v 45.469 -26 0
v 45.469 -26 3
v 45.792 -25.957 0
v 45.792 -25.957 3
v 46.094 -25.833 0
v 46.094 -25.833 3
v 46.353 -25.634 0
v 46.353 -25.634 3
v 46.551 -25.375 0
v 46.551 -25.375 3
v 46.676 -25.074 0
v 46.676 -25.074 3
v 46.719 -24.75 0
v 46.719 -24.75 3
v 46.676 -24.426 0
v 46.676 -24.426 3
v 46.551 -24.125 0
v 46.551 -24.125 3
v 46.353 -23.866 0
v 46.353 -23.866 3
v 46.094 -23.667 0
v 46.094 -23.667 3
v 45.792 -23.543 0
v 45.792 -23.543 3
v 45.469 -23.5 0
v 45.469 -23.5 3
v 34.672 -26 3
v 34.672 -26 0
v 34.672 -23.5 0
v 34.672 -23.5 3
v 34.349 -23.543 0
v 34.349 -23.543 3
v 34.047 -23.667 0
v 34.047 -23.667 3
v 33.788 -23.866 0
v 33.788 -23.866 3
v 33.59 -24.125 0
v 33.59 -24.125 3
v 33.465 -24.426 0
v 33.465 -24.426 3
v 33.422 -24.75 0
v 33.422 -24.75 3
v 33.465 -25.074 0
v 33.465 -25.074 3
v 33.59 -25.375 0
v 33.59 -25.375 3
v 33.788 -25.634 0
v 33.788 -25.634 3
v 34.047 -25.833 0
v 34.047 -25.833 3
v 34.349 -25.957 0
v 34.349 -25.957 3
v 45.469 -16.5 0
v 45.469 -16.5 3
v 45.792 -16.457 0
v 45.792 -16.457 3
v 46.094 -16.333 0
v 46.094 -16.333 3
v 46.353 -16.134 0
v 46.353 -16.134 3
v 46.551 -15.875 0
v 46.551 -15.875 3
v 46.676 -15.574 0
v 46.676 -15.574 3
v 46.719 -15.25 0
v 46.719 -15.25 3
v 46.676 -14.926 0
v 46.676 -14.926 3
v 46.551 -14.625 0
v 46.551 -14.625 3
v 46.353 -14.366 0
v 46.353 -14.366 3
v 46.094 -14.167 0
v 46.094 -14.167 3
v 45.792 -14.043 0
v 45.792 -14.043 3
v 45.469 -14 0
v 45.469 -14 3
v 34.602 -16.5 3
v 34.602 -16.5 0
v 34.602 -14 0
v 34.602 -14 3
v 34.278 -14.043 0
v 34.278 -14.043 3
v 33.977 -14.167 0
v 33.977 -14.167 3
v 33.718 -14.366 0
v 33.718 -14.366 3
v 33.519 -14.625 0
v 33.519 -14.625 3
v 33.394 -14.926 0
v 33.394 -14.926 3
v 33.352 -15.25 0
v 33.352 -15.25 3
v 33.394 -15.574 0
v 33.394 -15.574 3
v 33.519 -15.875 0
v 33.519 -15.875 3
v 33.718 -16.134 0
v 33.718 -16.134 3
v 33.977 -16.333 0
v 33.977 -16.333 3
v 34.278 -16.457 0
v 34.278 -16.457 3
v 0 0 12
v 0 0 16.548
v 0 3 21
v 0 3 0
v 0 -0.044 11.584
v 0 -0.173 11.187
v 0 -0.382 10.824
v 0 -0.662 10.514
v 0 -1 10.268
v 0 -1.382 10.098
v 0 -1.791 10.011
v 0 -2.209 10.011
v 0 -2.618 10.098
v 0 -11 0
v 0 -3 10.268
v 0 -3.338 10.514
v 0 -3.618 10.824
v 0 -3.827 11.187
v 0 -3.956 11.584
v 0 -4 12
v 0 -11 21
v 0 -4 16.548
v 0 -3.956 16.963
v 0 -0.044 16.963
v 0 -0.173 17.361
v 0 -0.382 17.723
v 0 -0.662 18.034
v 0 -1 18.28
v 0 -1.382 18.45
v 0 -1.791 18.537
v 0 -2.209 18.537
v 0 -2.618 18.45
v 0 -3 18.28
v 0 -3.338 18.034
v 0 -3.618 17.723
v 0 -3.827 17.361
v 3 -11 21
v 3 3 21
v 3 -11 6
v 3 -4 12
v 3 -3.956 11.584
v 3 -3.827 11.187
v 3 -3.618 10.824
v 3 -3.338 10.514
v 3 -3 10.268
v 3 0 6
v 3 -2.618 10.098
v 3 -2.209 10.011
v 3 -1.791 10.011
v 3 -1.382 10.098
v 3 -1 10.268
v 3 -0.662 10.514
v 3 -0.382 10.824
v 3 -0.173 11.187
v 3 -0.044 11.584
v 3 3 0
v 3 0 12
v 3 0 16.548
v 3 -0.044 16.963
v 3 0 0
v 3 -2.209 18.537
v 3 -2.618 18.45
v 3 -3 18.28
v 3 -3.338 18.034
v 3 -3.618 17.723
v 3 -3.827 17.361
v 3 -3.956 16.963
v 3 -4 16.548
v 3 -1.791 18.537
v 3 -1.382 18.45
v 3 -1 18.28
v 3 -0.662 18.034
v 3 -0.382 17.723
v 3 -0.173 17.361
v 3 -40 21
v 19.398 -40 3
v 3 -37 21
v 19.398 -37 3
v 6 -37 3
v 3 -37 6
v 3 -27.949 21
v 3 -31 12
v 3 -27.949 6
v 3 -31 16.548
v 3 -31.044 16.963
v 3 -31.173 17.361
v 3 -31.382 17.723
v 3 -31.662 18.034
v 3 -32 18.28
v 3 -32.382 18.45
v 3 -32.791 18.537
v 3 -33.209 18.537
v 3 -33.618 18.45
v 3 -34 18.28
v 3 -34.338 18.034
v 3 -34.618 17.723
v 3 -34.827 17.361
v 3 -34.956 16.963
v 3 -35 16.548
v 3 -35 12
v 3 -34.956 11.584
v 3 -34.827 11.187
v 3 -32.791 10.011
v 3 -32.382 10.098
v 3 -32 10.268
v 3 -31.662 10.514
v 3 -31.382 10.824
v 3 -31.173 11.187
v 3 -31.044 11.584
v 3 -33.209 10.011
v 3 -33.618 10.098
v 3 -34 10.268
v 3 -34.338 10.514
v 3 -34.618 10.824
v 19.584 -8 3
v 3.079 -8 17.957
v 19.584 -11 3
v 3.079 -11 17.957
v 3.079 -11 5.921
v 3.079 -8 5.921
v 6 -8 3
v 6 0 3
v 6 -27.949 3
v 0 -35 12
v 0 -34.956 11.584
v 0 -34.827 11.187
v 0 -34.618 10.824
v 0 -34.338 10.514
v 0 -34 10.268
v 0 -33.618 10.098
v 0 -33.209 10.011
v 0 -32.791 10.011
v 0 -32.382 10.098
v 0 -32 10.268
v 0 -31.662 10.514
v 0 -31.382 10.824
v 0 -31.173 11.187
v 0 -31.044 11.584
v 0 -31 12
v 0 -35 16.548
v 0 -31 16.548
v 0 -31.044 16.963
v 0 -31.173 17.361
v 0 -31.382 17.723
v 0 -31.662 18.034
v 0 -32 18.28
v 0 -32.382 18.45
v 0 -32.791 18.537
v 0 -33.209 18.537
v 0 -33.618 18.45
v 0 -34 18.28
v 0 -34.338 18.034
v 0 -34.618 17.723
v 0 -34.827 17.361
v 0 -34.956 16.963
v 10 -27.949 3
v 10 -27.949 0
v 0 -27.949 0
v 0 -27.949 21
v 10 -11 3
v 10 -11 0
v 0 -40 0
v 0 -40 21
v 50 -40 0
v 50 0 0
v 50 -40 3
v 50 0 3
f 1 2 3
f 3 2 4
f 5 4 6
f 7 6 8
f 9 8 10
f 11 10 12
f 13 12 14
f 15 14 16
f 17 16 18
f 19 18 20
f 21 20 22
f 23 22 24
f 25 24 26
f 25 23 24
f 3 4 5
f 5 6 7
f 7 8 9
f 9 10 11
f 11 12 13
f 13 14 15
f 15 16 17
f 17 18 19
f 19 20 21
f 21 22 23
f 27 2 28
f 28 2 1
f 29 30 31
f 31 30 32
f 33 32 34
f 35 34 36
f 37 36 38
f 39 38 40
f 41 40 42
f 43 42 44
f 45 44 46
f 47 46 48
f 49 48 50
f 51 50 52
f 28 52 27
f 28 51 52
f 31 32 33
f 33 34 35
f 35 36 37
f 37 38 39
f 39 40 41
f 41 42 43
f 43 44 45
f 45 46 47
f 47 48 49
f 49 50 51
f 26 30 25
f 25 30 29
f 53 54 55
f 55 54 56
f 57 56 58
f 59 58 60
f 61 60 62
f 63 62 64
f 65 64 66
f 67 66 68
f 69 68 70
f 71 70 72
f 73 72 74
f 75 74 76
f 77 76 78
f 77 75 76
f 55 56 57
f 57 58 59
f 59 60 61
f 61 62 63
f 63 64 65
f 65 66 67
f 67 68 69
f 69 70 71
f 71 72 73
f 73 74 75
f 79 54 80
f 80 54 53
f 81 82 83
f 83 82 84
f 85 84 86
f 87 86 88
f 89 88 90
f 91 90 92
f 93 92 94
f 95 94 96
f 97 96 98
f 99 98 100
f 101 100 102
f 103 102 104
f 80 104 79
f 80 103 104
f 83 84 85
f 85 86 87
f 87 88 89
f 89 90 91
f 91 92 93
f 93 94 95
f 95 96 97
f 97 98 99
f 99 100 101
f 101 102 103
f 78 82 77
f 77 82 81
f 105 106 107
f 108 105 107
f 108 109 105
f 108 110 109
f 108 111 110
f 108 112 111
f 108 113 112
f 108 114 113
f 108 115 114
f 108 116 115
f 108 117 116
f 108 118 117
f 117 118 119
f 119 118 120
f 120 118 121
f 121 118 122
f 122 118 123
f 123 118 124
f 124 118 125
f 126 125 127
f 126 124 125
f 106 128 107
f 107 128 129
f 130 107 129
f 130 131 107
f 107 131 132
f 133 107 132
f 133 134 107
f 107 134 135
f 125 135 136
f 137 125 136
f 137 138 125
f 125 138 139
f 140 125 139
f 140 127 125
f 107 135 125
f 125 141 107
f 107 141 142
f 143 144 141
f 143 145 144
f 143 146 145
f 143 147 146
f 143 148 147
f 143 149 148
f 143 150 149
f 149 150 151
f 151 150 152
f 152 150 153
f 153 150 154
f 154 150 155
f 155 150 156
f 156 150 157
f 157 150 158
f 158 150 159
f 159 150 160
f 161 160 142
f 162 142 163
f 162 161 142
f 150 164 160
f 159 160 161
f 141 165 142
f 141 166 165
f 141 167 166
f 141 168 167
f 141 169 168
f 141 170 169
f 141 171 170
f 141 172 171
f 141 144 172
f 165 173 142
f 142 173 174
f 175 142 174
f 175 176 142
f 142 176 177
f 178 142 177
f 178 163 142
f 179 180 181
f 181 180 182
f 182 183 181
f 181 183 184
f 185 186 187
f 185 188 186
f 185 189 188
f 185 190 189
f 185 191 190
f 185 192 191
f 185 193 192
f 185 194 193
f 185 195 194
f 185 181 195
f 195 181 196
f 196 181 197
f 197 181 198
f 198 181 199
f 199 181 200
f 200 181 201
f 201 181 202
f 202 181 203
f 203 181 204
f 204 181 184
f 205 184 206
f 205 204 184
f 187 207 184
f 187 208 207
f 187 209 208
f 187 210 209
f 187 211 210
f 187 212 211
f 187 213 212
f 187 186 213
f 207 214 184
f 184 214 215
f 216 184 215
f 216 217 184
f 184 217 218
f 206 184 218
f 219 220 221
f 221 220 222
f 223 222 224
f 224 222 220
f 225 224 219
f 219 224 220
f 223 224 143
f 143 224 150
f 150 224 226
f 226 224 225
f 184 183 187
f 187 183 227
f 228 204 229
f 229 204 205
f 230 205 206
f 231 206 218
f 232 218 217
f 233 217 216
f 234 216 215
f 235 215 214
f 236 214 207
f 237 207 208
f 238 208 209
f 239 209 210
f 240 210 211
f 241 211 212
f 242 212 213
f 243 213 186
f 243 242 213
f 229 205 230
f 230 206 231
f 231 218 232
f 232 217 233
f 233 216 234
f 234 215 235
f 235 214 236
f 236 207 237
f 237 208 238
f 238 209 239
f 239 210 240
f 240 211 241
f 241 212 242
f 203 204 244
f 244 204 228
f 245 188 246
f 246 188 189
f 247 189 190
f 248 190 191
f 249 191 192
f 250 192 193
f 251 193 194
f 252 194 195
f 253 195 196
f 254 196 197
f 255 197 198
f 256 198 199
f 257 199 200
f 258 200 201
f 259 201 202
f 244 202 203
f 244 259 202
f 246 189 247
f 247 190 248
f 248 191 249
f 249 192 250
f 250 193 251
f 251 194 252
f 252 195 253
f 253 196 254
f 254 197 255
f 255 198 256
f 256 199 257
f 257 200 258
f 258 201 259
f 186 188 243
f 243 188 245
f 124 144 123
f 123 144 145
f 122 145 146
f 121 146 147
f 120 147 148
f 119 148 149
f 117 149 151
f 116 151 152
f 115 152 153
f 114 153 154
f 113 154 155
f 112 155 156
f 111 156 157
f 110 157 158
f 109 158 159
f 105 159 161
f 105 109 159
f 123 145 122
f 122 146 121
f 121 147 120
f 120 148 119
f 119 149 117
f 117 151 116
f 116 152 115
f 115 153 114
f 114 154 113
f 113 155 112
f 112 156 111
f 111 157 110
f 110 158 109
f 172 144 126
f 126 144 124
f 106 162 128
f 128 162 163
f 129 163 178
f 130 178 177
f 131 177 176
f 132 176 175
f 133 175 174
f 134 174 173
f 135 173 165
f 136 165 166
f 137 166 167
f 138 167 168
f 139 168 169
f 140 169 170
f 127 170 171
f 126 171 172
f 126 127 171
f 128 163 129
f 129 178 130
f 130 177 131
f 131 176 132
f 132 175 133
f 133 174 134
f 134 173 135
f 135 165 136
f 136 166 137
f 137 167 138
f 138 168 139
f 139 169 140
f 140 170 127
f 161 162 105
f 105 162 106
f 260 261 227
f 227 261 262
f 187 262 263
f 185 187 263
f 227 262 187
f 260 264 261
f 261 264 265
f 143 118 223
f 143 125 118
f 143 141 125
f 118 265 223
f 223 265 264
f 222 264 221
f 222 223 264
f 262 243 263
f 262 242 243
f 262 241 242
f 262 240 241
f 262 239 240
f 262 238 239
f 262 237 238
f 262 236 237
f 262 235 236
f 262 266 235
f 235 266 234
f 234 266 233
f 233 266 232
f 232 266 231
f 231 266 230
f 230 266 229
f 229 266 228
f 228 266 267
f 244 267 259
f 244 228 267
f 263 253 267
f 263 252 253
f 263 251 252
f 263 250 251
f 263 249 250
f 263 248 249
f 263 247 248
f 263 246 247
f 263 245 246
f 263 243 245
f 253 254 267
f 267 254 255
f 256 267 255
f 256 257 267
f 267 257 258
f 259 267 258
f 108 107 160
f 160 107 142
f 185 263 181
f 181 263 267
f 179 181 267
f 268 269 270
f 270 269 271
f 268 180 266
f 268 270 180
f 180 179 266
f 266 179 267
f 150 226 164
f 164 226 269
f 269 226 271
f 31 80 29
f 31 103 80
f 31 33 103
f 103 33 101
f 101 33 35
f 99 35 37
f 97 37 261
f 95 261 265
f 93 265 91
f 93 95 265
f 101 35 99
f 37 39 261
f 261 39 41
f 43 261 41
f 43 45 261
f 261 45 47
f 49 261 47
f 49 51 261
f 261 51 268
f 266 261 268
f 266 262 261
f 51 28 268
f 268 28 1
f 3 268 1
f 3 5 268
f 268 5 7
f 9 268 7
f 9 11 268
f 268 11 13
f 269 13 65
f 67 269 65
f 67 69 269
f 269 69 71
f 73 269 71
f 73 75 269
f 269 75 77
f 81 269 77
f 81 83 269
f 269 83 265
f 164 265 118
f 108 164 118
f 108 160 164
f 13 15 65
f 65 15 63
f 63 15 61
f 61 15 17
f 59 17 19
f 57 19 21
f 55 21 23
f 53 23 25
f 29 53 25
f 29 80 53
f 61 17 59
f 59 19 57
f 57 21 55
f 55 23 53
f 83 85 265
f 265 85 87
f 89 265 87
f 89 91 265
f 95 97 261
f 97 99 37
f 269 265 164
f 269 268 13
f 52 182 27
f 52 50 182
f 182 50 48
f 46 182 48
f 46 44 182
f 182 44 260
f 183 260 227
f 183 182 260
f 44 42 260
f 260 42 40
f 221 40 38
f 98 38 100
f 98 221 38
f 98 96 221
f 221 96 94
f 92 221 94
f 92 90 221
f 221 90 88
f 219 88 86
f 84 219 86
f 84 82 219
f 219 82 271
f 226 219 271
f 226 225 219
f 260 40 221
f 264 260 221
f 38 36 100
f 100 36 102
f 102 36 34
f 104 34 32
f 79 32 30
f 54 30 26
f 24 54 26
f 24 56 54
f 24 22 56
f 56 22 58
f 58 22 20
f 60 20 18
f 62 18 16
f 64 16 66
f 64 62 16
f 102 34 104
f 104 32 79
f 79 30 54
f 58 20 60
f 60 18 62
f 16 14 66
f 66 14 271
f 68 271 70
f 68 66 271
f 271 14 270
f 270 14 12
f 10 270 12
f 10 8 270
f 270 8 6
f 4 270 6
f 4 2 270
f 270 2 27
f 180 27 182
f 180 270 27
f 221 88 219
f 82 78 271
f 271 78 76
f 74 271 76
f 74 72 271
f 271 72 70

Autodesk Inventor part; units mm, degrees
ref_plane "YZ Plane" through (0, 0, 0) normal (1, 0, 0) x (0, 1, 0)
ref_plane "XZ Plane" through (0, 0, 0) normal (0, 1, 0) x (-1, 0, 0)
ref_plane "XY Plane" through (0, 0, 0) normal (0, 0, 1) x (1, 0, 0)
sketch "Sketch1" plane through (0, 0, 0) normal (0, 0, 1) x (1, 0, 0)
  line L0 (0, 0) -> (50, 0)
  line L1 (50, 0) -> (50, -40)
  line L2 (50, -40) -> (0, -40)
  line L3 (0, -40) -> (0, 0)
  dimension "d0" = 50
  dimension "d1" = 40
extrude "Extrusion1" add sketch "Sketch1" along normal blind 3
sketch "Sketch2" plane through (0, 0, 3) normal (0, 0, 1) x (1, 0, 0)
  line L0 (0, -40) -> (50, -40) projected
  line L1 (0, 0) -> (3, 0)
  line L2 (3, 0) -> (3, -40)
  line L3 (3, -40) -> (0, -40)
  line L4 (0, -40) -> (0, 0)
  dimension "d4" = 3
extrude "Extrusion2" add sketch "Sketch2" along normal blind 18
sketch "Sketch3" plane through (0, 0, 0) normal (0, 1, 0) x (1, 0, 0)
  line L0 (0, 0) -> (3, 0)
  line L1 (3, 0) -> (3, -21)
  line L2 (3, -21) -> (0, -21)
  line L3 (0, -21) -> (0, 0)
extrude "Extrusion3" add sketch "Sketch3" along normal blind 3
sketch "Sketch4" plane through (0, 0, 0) normal (0, 0, -1) x (-1, 0, 0)
  line L0 (0, -40) -> (0, 3) projected
  line L1 (-3, 0) -> (-3, 3) projected
  line L2 (-3, 0) -> (-3, -11)
  line L3 (0, -11) -> (-10, -11)
  line L4 (-10, -11) -> (-10, -27.9486)
  line L5 (-10, -27.9486) -> (0, -27.9486)
  point P0 (0, 0)
  dimension "d9" = 11
  dimension "d10" = 10
extrude "Extrusion4" cut sketch "Sketch4" against normal blind 8
sketch "Sketch6" plane through (0, -40, 0) normal (-1, 0, 0) x (0, 0, 1)
  line L0 (0, 29) -> (8, 29) projected
  line L1 (12, 38) -> (16.5475, 38) construction
  line L2 (12, 36) -> (16.5475, 36)
  line L3 (16.5475, 40) -> (12, 40)
  arc A0 (12, 40) -> (12, 36) centre (12, 38) ccw
  arc A1 (16.5475, 36) -> (16.5475, 40) centre (16.5475, 38) ccw
  point P0 (0, 40)
  point P1 (14.2738, 38)
extrude "Extrusion6" cut sketch "Sketch6" against normal through all
sketch "Sketch7" plane through (0, -40, 0) normal (-1, 0, 0) x (0, 0, 1)
  line L0 (16.5475, 36) -> (12, 36) projected
  line L1 (12, 7) -> (16.5475, 7) construction
  line L2 (12, 5) -> (16.5475, 5)
  line L3 (16.5475, 9) -> (12, 9)
  arc A0 (12, 9) -> (12, 5) centre (12, 7) ccw
  arc A1 (16.5475, 5) -> (16.5475, 9) centre (16.5475, 7) ccw
  point P0 (0, 40)
  point P1 (14.2738, 7)
  dimension "d67" = 4
extrude "Extrusion7" cut sketch "Sketch7" against normal through all
sketch "Sketch8" plane through (0, 0, 0) normal (0, 0, -1) x (-1, 0, 0)
  line L0 (0, -27.9486) -> (-10, -27.9486) projected
  line L1 (-57.8737, -20) -> (-13.9473, -20) construction
  line L2 (-46.7188, -20) -> (-46.7188, -15.25) construction
  line L3 (-46.7188, -15.25) -> (-19.9847, -15.25) construction
  line L4 (-19.9847, -15.25) -> (-19.9847, -24.75) construction
  line L5 (-19.9847, -24.75) -> (-61.1977, -24.75) construction
  line L6 (-46.7188, -15.25) -> (-33.3518, -15.25) construction
  line L7 (-45.4688, -16.5) -> (-34.6018, -16.5)
  line L8 (-34.6018, -14) -> (-45.4688, -14)
  arc A0 (-45.4688, -14) -> (-45.4688, -16.5) centre (-45.4688, -15.25) ccw
  arc A1 (-34.6018, -16.5) -> (-34.6018, -14) centre (-34.6018, -15.25) ccw
  line L9 (-46.7188, -20) -> (-46.7188, -24.9647) construction
  arc A2 (-33.3518, -15.25) -> (-33.4221, -15.7265) centre (-33.3518, -15.4935) ccw construction
  line L10 (-33.4221, -15.7265) -> (-33.4221, -27.1874) construction
  line L11 (-46.7188, -24.75) -> (-33.4221, -24.75) construction
  line L12 (-45.4688, -26) -> (-34.6721, -26)
  line L13 (-34.6721, -23.5) -> (-45.4688, -23.5)
  arc A3 (-45.4688, -23.5) -> (-45.4688, -26) centre (-45.4688, -24.75) ccw
  arc A4 (-34.6721, -26) -> (-34.6721, -23.5) centre (-34.6721, -24.75) ccw
  point P0 (0, 0)
  point P1 (-40.0353, -15.25)
  point P2 (-40.0705, -24.75)
  dimension "d71" = 4.75
  dimension "d72" = 9.5
  dimension "d73" = 2.5
  dimension "d76" = 2.5
chamfer "Chamfer1" distance 3 angle 45 1 edges at (3, -33.9743, 3)
chamfer "Chamfer2" distance 3 angle 45 1 edges at (3, -5.5, 3)
sketch "Sketch11" plane through (0, 0, 0) normal (0, 0, -1) x (-1, 0, 0)
  line L0 (-48.6932, -22.9665) -> (-25.0226, -22.9665) construction
  line L1 (-45, -22.9665) -> (-37, -22.9665) construction
  line L2 (-10, -11) -> (0, -11) projected
  line L3 (0, -11) -> (0, 3) projected
  line L4 (-3, 3) -> (0, 3) projected
  line L5 (-3, 0) -> (-3, 3) projected
  line L6 (-3, 0) -> (-50, 0) projected
  line L7 (-50, 0) -> (-50, -40) projected
  line L8 (-50, -40) -> (0, -40) projected
  line L9 (0, -40) -> (0, -27.9486) projected
  line L10 (0, -27.9486) -> (-10, -27.9486) projected
  line L11 (-10, -27.9486) -> (-10, -11) projected
  point P0 (0, 0)
  point P1 (-41, -22.9665)
ref_plane "Work Plane1" through (0, -8, 0) normal (0, 1, 0) x (1, 0, 0)
sketch "Sketch14" plane through (0, -8, 0) normal (0, 1, 0) x (1, 0, 0)
  line L0 (3.0794, -17.957) -> (19.7008, -2.8939)
  line L1 (19.7008, -2.8939) -> (3.0794, -2.8939)
  line L2 (3.0794, -2.8939) -> (3.0794, -17.957)
  point P0 (0, 0)
extrude "Extrusion14" add sketch "Sketch14" against normal blind 3
sketch "Sketch15" plane through (0, -40, 21) normal (0, -1, 0) x (1, 0, 0)
  line L0 (6, -18) -> (50, -18) projected
  line L1 (3, -15) -> (6, -18) projected
  line L2 (3, -15) -> (3, 0) projected
  line L3 (3, 0) -> (19.3977, -18)
  line L4 (3, -15.75) -> (3, 0)
extrude "Extrusion15" add sketch "Sketch15" against normal blind 3
sketch "Sketch16" plane through (3, 0, 0) normal (1, 0, 0) x (0, 0, -1)
  line L0 (-21, -37) -> (-21, 3) projected
  line L1 (-21, -11) -> (-8, -11)
  line L2 (-8, -11) -> (-8, -27.9486)
  line L3 (-8, -27.9486) -> (-21, -27.9486)
  line L4 (-21, -27.9486) -> (-21, -11)
extrude "Extrusion16" cut sketch "Sketch16" against normal through all
extrude "Extrusion17" cut sketch "Sketch8" against normal through all contours A0 L8 A1 L7
extrude "Extrusion18" cut sketch "Sketch8" against normal through all contours A3 L13 A4 L12
properties part number "bart z endstop bracket plain switch v1"
